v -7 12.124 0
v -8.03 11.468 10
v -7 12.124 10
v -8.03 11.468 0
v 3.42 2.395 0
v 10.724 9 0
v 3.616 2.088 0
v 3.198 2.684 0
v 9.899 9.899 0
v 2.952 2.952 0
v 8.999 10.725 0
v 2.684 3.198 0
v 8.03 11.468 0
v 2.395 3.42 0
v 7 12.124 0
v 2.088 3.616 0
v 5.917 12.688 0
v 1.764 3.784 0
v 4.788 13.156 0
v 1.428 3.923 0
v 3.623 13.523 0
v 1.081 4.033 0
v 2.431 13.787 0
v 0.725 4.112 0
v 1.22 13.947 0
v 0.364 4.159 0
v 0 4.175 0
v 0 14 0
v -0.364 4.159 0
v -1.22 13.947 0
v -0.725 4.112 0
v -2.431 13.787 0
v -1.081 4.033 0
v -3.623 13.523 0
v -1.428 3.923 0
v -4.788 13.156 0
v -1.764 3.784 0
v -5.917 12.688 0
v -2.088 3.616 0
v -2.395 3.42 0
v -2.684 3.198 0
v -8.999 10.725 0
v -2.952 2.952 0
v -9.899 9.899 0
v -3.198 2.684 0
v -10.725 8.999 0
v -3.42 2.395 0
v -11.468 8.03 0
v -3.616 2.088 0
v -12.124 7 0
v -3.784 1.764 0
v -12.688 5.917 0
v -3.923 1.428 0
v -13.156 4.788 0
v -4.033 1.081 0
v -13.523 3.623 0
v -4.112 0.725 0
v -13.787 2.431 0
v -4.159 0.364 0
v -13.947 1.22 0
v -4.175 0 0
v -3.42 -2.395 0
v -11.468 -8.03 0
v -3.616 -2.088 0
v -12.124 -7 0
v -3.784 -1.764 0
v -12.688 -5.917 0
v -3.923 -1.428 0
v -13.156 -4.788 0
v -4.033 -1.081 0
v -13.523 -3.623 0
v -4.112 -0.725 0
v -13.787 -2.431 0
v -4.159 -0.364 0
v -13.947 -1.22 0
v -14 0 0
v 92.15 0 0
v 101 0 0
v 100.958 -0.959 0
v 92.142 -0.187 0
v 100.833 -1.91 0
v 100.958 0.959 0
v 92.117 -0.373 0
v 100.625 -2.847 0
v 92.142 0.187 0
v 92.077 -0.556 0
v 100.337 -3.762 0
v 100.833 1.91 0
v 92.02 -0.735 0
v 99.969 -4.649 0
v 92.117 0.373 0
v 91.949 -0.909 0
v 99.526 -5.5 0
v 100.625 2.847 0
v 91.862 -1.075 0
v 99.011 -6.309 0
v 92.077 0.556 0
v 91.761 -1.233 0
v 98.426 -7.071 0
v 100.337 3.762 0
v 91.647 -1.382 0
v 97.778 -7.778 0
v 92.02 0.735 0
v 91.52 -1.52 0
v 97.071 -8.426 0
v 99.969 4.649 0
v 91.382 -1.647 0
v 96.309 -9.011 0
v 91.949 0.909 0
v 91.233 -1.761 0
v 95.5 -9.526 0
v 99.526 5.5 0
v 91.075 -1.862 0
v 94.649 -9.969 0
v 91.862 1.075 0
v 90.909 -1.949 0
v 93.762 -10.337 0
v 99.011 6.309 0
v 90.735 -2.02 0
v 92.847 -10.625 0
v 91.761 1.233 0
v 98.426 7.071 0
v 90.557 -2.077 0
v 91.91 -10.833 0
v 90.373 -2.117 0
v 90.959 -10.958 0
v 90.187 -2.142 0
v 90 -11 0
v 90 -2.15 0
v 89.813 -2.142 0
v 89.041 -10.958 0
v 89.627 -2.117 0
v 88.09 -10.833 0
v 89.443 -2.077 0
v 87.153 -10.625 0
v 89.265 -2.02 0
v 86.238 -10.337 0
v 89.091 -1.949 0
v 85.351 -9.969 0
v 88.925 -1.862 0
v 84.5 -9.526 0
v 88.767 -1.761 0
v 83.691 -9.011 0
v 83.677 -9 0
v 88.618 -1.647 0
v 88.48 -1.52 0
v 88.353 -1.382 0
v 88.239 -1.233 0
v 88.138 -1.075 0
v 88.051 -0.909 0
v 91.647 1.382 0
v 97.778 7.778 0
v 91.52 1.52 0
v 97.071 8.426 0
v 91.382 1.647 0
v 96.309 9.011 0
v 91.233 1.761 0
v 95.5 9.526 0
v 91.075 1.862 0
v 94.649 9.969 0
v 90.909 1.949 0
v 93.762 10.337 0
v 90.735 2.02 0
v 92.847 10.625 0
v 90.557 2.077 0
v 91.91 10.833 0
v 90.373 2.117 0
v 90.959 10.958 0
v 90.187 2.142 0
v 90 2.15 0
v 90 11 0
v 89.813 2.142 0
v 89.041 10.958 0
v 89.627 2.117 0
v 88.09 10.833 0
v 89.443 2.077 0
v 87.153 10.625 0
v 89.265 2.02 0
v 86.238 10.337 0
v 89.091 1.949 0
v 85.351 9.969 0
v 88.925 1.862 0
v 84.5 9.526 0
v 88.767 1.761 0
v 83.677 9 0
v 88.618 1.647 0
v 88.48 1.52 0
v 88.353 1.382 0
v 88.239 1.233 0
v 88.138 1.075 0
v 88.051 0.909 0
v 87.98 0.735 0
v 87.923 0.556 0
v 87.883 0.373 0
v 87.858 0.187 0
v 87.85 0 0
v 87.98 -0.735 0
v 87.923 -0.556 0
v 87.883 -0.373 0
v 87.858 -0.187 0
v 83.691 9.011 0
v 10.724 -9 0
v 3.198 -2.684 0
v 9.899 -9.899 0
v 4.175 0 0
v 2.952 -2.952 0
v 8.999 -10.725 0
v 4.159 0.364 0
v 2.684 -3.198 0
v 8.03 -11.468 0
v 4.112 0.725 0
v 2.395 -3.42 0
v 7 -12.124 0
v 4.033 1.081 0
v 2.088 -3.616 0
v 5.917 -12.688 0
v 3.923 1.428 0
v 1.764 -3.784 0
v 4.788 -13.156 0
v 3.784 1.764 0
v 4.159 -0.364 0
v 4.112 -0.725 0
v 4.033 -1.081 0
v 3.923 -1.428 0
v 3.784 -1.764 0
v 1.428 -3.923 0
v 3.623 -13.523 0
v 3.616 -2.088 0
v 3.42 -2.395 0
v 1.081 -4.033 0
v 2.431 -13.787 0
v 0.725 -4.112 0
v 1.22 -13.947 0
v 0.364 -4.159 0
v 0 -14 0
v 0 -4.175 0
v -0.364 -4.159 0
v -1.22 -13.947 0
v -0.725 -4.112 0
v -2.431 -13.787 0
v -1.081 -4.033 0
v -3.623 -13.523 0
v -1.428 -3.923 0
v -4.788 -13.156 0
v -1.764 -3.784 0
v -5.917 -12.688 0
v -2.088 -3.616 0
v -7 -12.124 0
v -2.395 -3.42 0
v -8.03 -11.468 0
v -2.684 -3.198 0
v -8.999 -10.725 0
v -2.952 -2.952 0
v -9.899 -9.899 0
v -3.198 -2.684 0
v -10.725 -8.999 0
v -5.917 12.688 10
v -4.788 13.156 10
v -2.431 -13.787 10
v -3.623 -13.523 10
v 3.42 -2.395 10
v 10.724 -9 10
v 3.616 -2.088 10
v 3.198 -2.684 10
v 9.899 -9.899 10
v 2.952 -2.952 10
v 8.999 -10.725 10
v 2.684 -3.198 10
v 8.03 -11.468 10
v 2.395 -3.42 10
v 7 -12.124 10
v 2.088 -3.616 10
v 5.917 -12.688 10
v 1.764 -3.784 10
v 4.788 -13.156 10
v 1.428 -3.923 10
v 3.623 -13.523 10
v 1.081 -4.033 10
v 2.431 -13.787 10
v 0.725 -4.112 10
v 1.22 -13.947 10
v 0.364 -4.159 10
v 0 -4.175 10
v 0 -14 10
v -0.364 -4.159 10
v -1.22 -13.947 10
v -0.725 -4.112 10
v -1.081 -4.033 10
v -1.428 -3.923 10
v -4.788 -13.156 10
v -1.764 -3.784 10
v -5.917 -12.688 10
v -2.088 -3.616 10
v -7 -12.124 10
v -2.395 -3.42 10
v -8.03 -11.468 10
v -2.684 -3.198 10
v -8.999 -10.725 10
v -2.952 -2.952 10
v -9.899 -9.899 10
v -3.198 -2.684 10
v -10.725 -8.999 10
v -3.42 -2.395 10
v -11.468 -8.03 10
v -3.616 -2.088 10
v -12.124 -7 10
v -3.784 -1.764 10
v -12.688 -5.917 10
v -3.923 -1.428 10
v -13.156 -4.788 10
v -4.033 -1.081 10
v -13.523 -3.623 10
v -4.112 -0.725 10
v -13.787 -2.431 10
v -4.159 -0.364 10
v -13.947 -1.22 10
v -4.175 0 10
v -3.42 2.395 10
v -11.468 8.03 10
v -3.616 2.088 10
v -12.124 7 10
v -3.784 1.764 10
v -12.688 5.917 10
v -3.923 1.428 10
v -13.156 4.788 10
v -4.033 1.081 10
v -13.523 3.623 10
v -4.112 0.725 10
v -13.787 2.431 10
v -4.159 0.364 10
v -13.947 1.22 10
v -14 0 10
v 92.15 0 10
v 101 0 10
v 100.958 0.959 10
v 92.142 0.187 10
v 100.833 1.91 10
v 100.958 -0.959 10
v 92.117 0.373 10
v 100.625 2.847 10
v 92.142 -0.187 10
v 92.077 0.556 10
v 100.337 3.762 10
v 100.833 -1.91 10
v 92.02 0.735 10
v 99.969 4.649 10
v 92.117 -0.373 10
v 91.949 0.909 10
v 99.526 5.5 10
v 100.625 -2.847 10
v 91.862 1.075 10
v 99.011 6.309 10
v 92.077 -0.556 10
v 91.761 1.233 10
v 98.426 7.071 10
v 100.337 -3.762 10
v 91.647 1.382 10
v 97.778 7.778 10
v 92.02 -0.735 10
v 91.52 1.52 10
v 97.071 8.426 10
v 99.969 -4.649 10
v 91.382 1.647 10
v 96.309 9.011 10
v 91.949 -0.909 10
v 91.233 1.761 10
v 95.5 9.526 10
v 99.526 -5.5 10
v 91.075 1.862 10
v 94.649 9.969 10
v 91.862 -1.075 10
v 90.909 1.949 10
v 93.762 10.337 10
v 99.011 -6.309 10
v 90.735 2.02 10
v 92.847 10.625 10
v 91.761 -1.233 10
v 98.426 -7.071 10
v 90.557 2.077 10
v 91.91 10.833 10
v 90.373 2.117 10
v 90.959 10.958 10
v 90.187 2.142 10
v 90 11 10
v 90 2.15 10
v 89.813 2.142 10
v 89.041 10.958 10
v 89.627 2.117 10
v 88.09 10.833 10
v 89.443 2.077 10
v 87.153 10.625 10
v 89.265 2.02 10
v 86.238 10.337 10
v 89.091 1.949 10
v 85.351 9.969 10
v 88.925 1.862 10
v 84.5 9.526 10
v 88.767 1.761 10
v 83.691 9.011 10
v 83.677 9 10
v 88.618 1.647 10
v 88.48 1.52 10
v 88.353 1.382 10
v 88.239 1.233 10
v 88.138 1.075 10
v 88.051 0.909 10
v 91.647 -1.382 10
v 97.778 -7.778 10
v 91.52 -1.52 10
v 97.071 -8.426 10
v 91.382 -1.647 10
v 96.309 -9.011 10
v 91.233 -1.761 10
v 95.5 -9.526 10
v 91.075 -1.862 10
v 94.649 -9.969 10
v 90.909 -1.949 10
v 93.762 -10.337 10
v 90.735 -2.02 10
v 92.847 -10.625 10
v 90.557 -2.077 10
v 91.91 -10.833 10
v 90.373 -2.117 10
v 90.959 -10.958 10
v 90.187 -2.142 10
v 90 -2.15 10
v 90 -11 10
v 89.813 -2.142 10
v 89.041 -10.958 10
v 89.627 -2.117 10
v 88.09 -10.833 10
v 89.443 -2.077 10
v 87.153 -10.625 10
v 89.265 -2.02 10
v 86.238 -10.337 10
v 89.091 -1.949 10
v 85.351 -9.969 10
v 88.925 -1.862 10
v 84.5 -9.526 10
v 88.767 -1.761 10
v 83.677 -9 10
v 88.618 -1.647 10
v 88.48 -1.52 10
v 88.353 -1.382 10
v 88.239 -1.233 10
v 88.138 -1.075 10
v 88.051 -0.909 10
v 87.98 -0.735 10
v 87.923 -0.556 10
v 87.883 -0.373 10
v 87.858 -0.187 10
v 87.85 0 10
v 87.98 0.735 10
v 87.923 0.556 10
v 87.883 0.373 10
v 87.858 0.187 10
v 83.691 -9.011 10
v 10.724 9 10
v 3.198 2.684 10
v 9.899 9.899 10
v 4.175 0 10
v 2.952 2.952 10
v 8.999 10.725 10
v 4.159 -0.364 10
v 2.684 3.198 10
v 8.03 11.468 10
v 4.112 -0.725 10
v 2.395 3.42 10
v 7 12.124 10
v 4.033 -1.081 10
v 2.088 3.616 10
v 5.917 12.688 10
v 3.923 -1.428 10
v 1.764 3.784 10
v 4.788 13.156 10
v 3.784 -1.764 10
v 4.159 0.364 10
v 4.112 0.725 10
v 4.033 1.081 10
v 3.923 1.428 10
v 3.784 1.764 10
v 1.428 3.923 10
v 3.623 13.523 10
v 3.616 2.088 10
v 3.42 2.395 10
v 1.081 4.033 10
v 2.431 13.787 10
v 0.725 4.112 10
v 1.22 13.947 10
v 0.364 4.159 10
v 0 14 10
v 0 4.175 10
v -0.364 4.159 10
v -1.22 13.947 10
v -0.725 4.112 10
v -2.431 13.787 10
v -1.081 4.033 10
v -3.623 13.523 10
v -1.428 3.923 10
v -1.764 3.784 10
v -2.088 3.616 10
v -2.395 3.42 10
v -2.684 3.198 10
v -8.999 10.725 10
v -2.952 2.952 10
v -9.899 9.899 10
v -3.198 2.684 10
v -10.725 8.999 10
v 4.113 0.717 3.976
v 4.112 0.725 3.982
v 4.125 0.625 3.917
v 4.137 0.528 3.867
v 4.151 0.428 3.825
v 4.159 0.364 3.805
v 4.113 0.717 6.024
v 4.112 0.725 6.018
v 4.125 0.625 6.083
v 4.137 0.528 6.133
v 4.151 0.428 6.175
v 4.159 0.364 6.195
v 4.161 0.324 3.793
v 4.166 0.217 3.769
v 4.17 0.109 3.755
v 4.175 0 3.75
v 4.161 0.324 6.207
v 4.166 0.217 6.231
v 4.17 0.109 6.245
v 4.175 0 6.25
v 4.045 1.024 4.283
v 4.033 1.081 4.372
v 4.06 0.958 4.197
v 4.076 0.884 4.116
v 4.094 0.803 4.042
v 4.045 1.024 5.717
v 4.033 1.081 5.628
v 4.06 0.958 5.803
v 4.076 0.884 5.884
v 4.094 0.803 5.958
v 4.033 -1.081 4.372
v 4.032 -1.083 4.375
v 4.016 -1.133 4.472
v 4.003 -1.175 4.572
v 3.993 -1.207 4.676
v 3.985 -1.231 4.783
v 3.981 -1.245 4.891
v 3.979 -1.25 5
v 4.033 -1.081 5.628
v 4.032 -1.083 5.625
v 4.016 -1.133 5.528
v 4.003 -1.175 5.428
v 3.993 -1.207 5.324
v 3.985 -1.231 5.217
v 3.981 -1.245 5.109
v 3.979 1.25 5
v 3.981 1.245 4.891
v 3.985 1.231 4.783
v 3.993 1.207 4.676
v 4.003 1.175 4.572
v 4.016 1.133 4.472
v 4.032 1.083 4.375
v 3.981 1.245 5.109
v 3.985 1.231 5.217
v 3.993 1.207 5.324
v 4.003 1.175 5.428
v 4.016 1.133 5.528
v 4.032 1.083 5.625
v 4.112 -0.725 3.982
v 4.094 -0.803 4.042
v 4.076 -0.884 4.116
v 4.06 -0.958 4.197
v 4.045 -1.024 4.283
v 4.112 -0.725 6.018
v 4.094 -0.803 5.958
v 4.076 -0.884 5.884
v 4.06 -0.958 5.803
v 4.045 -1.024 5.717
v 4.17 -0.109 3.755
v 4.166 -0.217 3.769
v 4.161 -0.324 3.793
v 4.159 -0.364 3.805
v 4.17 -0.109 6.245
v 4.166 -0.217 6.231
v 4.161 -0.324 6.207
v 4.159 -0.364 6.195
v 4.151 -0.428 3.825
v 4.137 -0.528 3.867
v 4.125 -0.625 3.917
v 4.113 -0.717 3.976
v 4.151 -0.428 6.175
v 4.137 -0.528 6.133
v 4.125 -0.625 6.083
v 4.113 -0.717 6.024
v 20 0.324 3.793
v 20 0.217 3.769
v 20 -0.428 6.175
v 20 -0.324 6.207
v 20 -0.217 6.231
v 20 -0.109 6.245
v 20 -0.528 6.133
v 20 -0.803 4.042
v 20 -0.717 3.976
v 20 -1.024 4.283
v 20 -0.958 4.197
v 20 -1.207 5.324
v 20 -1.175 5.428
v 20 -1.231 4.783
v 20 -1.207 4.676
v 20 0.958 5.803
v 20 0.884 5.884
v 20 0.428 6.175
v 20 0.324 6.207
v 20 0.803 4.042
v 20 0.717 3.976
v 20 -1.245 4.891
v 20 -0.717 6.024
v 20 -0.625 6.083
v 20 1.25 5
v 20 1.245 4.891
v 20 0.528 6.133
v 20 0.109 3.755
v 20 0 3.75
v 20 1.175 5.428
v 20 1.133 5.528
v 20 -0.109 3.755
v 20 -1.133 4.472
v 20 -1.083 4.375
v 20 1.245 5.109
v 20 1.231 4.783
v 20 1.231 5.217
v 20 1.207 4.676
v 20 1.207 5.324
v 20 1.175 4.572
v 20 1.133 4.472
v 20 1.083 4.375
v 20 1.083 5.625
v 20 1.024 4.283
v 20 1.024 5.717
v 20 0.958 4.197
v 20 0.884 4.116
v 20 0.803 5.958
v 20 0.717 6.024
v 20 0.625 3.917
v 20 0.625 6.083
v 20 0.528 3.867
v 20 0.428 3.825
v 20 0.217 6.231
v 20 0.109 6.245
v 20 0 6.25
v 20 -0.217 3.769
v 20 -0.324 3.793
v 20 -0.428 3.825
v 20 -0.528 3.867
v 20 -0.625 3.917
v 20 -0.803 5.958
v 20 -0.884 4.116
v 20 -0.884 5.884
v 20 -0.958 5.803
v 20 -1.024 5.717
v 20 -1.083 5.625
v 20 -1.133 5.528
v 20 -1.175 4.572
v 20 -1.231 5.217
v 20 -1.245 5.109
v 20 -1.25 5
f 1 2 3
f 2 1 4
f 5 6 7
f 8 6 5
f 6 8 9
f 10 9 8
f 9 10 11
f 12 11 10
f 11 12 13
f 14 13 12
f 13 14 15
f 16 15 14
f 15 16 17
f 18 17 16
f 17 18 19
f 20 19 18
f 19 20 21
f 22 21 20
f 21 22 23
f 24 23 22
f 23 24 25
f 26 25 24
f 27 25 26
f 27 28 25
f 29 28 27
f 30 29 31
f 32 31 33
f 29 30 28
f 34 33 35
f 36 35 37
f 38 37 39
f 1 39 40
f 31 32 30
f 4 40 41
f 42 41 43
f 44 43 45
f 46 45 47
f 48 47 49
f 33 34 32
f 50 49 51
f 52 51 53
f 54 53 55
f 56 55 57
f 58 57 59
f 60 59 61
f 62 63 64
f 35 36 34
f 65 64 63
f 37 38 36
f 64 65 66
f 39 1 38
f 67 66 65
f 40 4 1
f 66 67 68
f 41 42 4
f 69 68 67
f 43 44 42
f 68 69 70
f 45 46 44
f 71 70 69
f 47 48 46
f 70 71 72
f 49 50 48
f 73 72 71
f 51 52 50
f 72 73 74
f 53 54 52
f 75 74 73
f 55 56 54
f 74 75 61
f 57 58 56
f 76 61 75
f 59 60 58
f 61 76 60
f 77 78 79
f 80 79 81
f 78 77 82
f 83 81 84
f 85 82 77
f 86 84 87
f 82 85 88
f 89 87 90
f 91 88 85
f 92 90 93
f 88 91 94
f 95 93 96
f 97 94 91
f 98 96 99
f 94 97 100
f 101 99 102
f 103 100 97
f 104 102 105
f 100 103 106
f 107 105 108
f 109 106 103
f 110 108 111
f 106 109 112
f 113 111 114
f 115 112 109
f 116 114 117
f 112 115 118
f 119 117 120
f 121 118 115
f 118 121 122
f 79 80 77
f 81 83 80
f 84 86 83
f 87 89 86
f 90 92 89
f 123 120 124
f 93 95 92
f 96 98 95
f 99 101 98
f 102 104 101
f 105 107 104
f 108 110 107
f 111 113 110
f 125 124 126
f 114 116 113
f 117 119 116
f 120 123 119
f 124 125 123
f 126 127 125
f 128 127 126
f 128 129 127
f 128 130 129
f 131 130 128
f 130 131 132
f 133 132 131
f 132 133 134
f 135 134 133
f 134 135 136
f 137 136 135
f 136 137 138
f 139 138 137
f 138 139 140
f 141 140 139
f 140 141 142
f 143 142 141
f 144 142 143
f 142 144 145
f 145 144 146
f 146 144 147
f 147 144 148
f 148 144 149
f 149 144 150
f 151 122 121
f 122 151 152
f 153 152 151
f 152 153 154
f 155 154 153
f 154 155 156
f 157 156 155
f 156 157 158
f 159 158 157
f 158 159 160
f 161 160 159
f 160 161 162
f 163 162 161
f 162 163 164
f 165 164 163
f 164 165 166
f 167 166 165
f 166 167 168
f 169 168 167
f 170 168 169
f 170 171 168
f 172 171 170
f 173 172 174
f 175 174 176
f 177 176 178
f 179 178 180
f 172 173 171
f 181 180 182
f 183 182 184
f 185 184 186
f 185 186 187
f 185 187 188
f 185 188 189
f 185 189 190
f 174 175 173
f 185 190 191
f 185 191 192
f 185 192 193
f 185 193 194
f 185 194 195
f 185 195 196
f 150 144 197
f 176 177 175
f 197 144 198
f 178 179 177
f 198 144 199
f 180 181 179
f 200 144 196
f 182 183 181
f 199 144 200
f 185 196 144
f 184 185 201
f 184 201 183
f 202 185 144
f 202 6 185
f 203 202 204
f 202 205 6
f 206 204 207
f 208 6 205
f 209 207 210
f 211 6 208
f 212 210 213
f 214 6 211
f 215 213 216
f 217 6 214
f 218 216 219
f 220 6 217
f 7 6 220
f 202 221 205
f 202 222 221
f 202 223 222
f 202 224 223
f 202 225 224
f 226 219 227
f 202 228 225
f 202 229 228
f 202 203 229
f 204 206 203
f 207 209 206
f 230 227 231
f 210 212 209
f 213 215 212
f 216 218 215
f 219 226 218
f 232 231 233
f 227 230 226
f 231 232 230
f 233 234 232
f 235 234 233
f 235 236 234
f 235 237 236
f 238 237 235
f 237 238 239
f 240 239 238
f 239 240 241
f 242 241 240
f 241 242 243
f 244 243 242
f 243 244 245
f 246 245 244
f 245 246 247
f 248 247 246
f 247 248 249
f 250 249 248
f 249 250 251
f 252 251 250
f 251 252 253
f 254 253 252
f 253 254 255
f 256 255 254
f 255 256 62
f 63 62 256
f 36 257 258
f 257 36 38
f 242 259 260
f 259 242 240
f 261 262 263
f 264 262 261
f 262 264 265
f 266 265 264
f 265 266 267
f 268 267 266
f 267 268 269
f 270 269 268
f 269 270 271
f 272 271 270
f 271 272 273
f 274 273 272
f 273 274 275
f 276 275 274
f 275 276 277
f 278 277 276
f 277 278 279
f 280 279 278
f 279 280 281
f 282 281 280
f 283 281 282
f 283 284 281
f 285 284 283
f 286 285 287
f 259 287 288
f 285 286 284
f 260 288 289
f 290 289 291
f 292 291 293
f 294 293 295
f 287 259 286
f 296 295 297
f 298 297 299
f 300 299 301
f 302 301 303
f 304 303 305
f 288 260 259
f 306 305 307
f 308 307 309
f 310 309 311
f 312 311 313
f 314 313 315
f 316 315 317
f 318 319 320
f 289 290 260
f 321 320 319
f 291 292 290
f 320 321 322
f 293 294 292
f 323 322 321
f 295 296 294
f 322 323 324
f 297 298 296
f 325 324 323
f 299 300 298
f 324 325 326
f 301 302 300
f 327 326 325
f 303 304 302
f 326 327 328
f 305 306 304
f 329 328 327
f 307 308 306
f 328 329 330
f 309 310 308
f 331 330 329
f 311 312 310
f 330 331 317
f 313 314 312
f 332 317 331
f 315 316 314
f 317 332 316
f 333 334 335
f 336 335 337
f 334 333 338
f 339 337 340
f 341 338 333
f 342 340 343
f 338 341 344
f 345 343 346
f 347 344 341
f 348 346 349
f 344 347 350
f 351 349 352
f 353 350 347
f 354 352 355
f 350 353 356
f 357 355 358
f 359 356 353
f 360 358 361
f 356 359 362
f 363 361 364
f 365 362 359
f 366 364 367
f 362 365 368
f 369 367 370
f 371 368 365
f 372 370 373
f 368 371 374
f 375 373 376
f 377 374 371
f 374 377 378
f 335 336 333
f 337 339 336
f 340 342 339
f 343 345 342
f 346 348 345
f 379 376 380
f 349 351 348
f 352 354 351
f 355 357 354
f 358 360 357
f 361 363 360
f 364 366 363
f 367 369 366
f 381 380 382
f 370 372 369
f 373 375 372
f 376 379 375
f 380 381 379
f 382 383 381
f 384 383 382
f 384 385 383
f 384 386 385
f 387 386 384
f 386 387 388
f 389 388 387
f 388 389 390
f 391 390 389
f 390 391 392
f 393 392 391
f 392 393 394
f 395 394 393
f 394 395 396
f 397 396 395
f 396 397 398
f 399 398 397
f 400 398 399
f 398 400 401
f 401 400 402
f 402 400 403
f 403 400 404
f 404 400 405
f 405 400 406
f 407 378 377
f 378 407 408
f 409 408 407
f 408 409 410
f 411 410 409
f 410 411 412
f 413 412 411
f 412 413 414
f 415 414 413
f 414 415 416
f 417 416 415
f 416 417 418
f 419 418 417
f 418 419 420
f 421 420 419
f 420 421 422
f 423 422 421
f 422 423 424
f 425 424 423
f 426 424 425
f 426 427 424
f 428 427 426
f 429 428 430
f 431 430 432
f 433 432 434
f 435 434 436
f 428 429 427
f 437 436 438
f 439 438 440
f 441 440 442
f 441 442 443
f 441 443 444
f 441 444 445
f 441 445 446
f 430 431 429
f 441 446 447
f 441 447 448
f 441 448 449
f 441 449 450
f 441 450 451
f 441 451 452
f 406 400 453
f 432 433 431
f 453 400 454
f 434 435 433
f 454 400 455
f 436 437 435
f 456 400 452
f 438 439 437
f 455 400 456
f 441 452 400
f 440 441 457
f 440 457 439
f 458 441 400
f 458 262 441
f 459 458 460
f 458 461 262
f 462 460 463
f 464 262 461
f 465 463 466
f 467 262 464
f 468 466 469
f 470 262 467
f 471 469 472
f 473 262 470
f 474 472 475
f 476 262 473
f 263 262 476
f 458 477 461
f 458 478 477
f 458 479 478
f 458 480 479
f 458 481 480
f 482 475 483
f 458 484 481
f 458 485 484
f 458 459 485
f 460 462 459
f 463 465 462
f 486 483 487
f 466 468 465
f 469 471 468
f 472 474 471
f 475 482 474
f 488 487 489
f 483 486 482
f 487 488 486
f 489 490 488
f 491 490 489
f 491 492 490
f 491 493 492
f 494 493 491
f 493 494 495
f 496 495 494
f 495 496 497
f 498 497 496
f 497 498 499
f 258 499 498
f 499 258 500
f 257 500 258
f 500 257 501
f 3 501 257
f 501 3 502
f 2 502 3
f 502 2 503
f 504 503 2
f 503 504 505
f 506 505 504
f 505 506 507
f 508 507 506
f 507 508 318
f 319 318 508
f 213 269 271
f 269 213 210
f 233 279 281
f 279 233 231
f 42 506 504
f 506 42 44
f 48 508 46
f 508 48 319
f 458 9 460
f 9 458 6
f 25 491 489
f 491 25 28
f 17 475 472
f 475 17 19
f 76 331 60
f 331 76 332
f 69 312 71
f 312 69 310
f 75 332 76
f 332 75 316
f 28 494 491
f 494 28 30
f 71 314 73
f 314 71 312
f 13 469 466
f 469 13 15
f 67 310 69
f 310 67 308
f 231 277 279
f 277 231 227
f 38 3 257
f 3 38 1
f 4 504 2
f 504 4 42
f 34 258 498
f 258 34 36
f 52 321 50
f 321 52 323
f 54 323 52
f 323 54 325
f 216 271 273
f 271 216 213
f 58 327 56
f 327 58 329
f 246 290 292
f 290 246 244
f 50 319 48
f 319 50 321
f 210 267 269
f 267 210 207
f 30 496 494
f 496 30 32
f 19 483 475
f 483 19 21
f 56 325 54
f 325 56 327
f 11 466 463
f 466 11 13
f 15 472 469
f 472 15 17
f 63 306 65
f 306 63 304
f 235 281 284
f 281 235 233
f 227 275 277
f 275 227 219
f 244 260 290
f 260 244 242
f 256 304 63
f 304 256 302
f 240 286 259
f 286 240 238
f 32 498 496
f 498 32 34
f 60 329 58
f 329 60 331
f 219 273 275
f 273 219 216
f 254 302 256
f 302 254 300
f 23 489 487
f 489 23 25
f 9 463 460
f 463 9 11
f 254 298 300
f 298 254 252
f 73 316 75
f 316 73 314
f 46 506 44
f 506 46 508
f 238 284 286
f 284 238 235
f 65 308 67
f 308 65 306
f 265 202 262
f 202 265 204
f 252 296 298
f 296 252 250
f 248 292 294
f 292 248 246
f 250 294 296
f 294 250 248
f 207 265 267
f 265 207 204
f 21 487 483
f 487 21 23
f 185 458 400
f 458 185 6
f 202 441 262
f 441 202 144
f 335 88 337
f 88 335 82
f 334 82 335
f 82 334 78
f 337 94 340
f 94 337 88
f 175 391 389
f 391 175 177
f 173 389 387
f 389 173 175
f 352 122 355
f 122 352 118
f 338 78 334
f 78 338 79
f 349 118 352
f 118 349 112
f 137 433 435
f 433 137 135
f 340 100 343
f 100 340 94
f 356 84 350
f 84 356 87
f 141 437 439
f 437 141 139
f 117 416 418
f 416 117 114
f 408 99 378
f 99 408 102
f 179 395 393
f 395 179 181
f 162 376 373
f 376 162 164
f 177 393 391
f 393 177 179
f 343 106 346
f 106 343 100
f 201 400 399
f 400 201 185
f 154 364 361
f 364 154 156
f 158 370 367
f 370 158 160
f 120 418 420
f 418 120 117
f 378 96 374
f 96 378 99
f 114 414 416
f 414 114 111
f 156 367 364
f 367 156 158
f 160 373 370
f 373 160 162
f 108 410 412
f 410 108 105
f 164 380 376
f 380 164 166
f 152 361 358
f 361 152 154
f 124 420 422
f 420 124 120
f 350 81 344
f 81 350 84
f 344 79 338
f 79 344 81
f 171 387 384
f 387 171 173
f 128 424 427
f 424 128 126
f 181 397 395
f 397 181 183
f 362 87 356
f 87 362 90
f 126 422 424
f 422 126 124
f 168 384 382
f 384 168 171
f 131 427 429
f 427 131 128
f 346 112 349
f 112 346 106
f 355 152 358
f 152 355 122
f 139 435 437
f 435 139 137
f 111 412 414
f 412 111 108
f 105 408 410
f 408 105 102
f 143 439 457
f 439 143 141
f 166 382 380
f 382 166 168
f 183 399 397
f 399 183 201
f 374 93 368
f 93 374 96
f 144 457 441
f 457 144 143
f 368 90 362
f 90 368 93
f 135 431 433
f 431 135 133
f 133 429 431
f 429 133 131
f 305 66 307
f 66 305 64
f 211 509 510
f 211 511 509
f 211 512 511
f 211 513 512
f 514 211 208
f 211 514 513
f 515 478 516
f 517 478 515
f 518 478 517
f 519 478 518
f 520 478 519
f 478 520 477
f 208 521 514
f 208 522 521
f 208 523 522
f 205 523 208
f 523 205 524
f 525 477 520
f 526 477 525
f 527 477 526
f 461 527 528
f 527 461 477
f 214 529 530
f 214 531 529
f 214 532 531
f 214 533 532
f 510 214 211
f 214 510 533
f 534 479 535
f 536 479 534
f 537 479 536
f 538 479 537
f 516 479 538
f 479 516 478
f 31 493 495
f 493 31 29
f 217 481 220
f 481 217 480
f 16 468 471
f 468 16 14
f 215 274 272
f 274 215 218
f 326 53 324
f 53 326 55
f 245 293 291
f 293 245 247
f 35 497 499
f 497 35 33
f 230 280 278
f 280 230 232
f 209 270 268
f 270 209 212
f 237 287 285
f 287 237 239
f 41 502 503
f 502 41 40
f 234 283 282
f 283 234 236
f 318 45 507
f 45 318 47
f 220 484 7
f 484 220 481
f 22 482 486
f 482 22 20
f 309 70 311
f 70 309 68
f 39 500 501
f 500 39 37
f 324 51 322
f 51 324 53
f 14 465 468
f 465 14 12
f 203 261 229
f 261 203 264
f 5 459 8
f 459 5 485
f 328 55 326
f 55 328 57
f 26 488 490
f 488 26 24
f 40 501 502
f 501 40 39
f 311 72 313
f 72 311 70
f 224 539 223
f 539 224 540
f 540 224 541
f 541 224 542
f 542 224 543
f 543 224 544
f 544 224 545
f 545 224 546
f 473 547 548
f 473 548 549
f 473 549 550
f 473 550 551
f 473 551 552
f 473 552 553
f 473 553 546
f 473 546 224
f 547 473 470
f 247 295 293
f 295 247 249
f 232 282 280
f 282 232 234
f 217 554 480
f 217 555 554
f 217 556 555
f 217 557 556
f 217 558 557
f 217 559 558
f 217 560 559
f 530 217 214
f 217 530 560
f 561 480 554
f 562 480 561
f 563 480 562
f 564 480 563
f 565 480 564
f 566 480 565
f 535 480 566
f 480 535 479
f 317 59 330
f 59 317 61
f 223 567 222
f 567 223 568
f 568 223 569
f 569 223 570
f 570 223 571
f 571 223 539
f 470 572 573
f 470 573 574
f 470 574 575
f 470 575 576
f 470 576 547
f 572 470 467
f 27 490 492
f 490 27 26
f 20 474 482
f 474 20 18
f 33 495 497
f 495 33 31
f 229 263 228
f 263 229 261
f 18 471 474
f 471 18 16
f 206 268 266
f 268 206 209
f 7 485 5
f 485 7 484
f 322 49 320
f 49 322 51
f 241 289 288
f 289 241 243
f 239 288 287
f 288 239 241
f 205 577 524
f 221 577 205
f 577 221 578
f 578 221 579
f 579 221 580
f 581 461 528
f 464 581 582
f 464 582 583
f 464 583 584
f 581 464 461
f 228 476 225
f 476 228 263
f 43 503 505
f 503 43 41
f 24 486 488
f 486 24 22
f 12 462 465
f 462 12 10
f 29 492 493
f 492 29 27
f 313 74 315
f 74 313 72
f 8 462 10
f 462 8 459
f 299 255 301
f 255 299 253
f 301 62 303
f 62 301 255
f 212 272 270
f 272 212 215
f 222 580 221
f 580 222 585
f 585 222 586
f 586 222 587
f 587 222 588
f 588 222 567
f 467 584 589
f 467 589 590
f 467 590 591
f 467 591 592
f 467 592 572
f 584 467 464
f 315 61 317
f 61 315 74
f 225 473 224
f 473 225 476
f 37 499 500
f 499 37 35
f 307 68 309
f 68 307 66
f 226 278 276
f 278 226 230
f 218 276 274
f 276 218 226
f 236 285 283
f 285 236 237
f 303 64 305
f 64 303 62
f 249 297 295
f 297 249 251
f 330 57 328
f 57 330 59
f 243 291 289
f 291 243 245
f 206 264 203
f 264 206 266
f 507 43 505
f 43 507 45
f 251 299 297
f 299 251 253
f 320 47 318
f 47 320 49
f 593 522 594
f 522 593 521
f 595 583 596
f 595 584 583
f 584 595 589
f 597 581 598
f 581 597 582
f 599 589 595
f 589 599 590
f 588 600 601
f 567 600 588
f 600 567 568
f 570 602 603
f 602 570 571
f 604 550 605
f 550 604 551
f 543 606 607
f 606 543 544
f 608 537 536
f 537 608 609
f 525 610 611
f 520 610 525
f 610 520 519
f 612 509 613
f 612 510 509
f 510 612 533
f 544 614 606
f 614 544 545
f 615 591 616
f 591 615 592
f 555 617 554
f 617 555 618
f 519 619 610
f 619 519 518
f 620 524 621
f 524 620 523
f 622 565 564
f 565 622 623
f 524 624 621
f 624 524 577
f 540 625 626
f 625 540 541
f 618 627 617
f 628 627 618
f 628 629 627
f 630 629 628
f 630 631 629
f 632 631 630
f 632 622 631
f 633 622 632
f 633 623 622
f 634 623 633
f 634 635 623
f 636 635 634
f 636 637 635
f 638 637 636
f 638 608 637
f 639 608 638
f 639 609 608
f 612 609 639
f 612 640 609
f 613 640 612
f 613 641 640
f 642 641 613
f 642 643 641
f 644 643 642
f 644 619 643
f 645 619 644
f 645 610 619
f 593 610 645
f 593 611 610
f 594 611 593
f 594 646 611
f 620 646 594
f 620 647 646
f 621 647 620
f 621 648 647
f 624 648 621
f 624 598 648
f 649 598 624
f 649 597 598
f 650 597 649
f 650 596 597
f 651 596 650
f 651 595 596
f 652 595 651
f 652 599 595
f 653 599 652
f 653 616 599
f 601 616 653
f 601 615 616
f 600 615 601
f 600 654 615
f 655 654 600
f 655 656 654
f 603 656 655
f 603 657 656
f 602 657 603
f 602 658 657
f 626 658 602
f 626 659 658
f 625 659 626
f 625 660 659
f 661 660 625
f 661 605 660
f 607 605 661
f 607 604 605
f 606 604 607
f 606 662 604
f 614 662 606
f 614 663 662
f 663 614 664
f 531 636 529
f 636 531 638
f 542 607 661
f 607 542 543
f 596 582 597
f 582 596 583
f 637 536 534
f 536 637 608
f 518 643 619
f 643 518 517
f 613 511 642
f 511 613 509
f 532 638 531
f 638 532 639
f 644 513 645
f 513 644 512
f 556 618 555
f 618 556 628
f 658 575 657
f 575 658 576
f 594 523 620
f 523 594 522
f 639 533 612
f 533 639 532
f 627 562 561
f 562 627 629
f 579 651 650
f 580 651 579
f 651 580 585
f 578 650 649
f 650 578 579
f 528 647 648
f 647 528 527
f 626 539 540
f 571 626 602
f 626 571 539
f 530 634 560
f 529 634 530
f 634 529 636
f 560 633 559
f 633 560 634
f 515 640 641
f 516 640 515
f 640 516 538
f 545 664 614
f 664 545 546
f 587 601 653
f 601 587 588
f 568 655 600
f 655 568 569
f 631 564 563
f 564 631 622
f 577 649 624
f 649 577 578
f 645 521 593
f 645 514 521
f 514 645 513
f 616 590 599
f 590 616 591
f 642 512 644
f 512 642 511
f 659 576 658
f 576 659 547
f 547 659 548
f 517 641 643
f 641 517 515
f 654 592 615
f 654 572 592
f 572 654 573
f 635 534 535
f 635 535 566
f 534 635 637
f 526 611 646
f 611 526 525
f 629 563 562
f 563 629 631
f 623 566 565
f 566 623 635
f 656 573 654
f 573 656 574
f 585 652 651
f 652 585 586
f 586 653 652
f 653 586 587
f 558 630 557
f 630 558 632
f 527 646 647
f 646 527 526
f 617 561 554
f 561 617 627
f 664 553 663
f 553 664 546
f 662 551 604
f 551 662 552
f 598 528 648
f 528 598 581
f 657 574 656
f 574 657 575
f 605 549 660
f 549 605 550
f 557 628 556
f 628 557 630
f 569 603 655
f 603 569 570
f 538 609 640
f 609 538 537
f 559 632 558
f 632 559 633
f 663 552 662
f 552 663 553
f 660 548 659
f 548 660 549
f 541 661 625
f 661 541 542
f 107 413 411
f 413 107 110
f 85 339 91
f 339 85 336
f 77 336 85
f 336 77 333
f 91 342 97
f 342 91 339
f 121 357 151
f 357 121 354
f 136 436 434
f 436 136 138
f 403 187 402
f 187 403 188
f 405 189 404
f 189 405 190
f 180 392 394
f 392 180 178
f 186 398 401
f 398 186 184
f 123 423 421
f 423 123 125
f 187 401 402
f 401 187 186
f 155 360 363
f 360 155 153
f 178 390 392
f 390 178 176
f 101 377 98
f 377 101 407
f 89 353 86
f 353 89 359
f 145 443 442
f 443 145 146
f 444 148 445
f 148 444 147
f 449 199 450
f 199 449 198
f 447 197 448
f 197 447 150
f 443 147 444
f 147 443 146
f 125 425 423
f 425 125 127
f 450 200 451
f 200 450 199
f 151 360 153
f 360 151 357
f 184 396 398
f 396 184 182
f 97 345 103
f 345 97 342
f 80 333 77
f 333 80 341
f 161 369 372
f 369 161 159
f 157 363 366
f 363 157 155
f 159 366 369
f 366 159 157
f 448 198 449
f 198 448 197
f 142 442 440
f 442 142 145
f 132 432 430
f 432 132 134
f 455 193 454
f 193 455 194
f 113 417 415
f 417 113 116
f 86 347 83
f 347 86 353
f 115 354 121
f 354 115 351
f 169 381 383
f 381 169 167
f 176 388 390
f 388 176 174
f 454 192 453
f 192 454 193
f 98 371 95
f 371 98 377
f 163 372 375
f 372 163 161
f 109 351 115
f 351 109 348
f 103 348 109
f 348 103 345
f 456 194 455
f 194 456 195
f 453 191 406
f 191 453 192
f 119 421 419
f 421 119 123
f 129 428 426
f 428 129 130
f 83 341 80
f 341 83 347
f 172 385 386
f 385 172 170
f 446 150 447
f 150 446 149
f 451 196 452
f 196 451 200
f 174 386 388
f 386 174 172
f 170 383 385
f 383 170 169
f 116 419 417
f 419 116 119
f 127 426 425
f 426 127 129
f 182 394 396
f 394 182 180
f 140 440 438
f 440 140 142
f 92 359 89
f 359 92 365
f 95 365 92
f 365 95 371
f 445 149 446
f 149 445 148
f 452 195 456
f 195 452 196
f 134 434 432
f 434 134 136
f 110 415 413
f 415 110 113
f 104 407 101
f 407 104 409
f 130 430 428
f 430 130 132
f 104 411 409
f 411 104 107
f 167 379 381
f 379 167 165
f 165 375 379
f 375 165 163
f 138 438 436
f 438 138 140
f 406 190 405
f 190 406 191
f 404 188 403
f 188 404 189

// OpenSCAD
// file: parameters.scad
// AFPM-Desk-v4 PoleShoe shared parameters (mm)
// SSDR dual-rotor axial-flux PM learning generator:
// mild-steel back-iron + mild-steel pole shoes under each magnet.
// Faraday induction education only — not free-energy / overunity.
// Target: Anycubic Kobra 3 Max, 0.4 mm nozzle, 0.2 mm layers, PETG.

$fn = 72;

// --- Printer / FDM assumptions ---
nozzle = 0.4;
layer = 0.2;
wall = 1.6;                 // load-bearing ~4 perimeters
housing_wall = 2.4;
clearance_slip = 0.35;      // shaft slip fit
clearance_loose = 0.55;
press_interference = 0.15;  // bearing pocket undersize total (coupon-test)
magnet_pocket_xy = 0.25;    // +0.25 mm on diameter
magnet_pocket_z = 0.15;     // +0.15 mm depth
elephant_foot = 0.5;

// --- Magnets (N42 Neo discs) — Austin's Ø20×5 stock ---
magnet_d = 20;
magnet_h = 5;
magnet_count = 12;          // per rotor (12+12 total)
magnet_pcd = 90;            // center pitch; ~3.3 mm edge gap between discs

// --- Mild-steel pole shoes (flux concentrators under each magnet) ---
// Slightly smaller OD than magnet teaches concentration / reluctance.
pole_shoe_d = 18;
pole_shoe_h = 2.0;          // purchased mild-steel disc or punched blank
pole_shoe_pocket_xy = 0.30;
pole_shoe_pocket_z = 0.15;

// --- Steel back-iron (purchased mild steel disc behind pole-shoe ring) ---
steel_od = 118;
steel_id = 16;              // clearance around hub boss
steel_h = 1.5;              // 1.5–2.0 mm mild steel OK
steel_recess_clearance = 0.3;

// --- Rotor printed disc ---
rotor_od = 130;
rotor_hub_bore = 12;        // seats on shaft_hub boss
rotor_thickness = 11;       // magnet + pole shoe + plastic floor + steel recess
magnet_pocket_depth = magnet_h + magnet_pocket_z;
pole_shoe_pocket_depth = pole_shoe_h + pole_shoe_pocket_z;
steel_recess_depth = steel_h + 0.2;

// --- Stator (coreless, between rotors) — 9 coils for 3-phase ---
stator_od = 140;
stator_id = 30;
stator_thickness = 12;
coil_count = 9;
coil_slot_w = 22;
coil_slot_l = 28;           // radial length of pocket
coil_slot_depth = 10;
coil_pcd = 90;
stator_pillar_pcd = 118;    // M4 pillar holes

// --- Coil bobbin (stays in stator) ---
former_core_w = 16;
former_core_l = 24;
former_flange = 2.5;
former_wind_h = 9.2;        // fits coil_slot_depth - margin

// --- Shaft / bearings ---
shaft_d = 8;
bearing_od = 22;            // 608-2RS / 608ZZ
bearing_id = 8;
bearing_h = 7;
bearing_seat_od = bearing_od - press_interference; // ~21.85; coupon-test

// --- Base / frame ---
base_w = 200;
base_d = 180;
base_h = 8;
post_h = 78;
post_spacing = 145;         // Y distance between bearing post centers (thicker stack)
post_d = 36;

// --- Axial stack targets ---
// crank | brg | hub+rotorA+steel | air | stator | air | steel+rotorB+hub | brg
air_gap_nominal = 1.75;     // mechanical per side magnet↔coil face (1.5–2.0)

// --- Crank ---
crank_arm_len = 90;
crank_arm_w = 18;
crank_arm_t = 10;
handle_d = 14;
handle_len = 45;

// --- Electronics tray ---
tray_w = 80;
tray_d = 55;
tray_h = 14;

// --- Fasteners ---
m3_clear = 3.4;
m3_tap = 2.5;
m4_clear = 4.3;
// main file
include <parameters.scad>

module hand_crank() {
  difference() {
    union() {
      cylinder(h=crank_arm_t, d=28);
      translate([0, -crank_arm_w/2, 0])
        cube([crank_arm_len, crank_arm_w, crank_arm_t]);
      translate([crank_arm_len, 0, 0])
        cylinder(h=crank_arm_t, d=22);
    }
    translate([0,0,-0.1])
      cylinder(h=crank_arm_t+0.2, d=shaft_d + clearance_slip);
    translate([0,0,crank_arm_t/2])
      rotate([0,90,0])
        cylinder(h=20, d=m3_tap);
    translate([crank_arm_len, 0, -0.1])
      cylinder(h=crank_arm_t+0.2, d=m4_clear);
  }
}

hand_crank();
